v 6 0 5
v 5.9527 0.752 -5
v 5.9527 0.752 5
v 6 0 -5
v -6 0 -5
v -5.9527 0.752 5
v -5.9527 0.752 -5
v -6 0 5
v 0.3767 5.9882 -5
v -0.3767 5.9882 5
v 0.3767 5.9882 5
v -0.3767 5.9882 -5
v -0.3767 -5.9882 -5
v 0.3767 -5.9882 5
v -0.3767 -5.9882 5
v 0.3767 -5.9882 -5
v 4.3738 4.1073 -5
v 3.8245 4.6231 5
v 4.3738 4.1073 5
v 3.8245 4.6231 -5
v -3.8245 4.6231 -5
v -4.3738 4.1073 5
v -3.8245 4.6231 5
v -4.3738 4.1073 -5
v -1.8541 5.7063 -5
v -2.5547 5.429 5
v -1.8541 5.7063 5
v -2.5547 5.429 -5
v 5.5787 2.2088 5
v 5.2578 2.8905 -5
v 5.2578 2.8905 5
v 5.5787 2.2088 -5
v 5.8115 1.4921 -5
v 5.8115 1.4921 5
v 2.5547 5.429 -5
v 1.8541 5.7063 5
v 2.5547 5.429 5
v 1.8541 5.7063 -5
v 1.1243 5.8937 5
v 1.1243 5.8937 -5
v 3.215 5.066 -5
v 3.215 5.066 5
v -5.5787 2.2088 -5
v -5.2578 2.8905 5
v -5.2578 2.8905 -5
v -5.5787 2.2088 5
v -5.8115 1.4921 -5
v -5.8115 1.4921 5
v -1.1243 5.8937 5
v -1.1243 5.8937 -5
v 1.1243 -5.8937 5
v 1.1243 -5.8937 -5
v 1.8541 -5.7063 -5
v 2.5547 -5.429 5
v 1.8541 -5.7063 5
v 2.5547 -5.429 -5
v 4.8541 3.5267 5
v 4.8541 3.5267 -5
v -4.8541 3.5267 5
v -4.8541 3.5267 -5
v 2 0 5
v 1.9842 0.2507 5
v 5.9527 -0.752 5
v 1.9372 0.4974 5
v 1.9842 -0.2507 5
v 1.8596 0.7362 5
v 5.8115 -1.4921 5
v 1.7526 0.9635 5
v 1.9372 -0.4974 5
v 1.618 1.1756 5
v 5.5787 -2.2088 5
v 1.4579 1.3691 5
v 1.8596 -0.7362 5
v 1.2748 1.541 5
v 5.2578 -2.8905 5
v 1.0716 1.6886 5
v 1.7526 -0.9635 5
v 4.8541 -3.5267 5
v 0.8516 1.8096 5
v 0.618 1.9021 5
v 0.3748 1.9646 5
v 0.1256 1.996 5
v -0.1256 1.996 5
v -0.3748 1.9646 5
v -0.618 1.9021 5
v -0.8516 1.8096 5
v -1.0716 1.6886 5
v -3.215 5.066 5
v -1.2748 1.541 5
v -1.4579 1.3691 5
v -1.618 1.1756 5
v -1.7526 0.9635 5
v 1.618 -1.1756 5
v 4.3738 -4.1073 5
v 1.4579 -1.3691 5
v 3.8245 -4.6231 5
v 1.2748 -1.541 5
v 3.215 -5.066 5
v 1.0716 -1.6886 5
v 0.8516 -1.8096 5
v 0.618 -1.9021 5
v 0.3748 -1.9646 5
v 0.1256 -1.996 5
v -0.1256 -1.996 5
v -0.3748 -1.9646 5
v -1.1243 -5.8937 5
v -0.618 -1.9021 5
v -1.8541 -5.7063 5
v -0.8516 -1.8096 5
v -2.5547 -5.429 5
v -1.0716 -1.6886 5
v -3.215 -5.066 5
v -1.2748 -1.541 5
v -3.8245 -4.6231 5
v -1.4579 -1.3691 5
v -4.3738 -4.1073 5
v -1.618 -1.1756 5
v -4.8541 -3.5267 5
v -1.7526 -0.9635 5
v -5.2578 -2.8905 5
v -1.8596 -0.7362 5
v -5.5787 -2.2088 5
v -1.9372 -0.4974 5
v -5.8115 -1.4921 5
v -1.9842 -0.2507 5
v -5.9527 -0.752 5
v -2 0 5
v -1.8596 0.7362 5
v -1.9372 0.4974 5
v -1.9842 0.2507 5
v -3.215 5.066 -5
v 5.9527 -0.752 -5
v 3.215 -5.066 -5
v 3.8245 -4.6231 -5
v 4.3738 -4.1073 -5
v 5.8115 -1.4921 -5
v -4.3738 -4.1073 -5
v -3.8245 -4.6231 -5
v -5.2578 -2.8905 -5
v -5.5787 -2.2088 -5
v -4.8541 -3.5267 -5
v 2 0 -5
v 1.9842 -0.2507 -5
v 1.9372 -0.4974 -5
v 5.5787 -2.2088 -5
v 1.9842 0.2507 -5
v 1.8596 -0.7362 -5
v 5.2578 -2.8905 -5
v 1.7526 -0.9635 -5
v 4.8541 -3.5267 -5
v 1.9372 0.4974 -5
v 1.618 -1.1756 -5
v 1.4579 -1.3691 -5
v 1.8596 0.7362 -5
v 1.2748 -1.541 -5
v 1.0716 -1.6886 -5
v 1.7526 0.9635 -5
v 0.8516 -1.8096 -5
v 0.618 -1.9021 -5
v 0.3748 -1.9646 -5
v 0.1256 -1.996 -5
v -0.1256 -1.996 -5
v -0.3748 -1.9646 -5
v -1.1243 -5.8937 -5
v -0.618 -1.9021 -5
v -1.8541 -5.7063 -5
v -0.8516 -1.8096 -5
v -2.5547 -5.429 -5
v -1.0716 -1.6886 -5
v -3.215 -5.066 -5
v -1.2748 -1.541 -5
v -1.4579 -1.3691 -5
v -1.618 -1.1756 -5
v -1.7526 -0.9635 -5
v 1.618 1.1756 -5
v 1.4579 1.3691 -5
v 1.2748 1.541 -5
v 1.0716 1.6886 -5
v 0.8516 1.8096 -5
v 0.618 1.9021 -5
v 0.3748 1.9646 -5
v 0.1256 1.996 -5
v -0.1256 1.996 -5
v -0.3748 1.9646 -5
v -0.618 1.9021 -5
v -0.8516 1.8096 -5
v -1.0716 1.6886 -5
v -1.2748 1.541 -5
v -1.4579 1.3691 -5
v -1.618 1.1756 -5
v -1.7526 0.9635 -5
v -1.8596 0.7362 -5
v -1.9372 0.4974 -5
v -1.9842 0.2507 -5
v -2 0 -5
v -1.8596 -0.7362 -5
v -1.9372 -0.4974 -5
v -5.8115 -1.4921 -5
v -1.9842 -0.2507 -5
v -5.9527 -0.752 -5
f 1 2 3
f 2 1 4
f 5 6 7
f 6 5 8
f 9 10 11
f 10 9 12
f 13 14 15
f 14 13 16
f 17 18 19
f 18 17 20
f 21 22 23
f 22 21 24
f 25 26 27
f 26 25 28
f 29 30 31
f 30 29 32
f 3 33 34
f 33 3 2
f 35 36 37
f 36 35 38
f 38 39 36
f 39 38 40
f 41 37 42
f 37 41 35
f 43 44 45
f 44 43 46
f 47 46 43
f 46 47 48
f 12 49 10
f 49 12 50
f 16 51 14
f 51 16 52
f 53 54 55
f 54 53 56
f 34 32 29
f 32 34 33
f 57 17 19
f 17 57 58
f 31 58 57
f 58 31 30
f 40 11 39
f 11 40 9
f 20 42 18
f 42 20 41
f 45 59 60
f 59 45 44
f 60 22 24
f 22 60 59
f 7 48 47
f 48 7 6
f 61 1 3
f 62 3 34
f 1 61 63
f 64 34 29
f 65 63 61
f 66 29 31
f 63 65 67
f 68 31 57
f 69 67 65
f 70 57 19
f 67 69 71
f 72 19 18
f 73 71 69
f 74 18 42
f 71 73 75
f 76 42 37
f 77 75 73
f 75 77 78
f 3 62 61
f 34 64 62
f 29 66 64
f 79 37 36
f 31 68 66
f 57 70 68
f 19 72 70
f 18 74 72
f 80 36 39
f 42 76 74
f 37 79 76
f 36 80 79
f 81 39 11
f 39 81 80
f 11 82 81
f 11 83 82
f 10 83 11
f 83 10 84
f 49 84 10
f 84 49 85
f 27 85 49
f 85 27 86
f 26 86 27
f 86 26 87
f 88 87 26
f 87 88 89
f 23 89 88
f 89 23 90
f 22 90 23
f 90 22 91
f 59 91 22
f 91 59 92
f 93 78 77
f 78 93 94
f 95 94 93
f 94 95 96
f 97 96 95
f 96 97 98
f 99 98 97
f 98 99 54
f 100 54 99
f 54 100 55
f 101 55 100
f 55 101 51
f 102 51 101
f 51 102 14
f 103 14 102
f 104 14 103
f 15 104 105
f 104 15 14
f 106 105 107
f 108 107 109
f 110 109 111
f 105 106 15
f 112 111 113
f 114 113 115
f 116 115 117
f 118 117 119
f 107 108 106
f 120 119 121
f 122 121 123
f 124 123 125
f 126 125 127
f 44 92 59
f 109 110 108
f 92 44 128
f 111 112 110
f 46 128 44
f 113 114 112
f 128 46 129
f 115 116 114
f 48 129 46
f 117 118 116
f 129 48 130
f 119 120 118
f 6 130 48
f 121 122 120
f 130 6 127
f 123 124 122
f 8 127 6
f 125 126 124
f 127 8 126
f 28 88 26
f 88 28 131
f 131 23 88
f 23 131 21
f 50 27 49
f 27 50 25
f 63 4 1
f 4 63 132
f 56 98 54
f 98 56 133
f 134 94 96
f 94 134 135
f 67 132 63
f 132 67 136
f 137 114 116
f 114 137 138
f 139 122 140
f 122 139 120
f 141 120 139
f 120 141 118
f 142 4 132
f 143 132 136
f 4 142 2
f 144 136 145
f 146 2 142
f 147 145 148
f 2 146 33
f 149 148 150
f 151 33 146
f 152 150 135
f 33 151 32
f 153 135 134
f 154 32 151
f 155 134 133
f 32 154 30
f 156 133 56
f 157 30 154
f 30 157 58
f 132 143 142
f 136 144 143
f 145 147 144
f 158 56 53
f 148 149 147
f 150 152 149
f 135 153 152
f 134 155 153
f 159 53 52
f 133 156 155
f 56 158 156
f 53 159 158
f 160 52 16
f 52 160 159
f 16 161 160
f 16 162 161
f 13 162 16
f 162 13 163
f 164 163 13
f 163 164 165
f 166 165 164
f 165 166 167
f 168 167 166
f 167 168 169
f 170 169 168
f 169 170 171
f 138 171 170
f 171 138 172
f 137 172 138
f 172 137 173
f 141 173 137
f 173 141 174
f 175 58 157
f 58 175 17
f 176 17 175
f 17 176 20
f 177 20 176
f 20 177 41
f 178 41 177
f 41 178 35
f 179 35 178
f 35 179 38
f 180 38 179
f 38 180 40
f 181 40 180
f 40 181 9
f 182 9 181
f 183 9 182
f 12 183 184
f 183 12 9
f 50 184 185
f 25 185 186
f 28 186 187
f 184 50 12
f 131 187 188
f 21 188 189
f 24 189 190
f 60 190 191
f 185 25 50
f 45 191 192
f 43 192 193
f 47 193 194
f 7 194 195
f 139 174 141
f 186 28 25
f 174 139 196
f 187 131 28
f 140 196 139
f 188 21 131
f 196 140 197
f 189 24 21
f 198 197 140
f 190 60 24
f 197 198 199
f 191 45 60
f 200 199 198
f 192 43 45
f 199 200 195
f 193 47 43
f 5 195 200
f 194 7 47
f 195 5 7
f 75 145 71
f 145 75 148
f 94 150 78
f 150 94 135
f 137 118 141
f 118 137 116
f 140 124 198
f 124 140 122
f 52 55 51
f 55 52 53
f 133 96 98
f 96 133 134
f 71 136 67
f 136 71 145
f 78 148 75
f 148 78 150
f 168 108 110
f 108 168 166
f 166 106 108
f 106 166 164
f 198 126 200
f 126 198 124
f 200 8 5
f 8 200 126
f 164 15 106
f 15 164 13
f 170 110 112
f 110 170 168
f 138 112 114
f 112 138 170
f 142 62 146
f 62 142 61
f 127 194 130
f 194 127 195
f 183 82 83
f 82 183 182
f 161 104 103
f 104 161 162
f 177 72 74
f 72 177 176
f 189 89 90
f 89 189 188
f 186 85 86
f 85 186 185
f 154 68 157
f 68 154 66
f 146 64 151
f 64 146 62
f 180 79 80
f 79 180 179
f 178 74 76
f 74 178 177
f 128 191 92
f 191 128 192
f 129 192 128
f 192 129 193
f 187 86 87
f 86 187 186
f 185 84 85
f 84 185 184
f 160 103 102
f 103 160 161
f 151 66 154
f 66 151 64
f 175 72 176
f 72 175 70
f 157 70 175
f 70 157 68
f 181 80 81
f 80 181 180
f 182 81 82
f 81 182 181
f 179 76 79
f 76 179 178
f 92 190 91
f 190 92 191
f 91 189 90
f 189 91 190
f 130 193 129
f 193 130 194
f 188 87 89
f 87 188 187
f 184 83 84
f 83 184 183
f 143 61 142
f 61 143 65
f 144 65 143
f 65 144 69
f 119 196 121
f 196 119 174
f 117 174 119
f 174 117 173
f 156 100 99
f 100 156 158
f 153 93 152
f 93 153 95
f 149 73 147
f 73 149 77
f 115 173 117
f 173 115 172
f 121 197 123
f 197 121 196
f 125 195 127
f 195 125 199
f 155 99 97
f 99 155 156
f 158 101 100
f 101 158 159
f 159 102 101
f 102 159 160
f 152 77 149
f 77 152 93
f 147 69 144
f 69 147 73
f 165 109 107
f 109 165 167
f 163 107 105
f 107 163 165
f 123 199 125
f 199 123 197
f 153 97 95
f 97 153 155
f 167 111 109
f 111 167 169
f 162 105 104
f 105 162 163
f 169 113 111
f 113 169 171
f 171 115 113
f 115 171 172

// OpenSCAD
$fn = 50;


difference() {
	union() {
		translate(v = [0, 0, -5.0000000000]) {
			cylinder(h = 10, r = 6.0000000000);
		}
	}
	union() {
		translate(v = [0, 0, -100.0000000000]) {
			cylinder(h = 200, r = 2);
		}
	}
}
